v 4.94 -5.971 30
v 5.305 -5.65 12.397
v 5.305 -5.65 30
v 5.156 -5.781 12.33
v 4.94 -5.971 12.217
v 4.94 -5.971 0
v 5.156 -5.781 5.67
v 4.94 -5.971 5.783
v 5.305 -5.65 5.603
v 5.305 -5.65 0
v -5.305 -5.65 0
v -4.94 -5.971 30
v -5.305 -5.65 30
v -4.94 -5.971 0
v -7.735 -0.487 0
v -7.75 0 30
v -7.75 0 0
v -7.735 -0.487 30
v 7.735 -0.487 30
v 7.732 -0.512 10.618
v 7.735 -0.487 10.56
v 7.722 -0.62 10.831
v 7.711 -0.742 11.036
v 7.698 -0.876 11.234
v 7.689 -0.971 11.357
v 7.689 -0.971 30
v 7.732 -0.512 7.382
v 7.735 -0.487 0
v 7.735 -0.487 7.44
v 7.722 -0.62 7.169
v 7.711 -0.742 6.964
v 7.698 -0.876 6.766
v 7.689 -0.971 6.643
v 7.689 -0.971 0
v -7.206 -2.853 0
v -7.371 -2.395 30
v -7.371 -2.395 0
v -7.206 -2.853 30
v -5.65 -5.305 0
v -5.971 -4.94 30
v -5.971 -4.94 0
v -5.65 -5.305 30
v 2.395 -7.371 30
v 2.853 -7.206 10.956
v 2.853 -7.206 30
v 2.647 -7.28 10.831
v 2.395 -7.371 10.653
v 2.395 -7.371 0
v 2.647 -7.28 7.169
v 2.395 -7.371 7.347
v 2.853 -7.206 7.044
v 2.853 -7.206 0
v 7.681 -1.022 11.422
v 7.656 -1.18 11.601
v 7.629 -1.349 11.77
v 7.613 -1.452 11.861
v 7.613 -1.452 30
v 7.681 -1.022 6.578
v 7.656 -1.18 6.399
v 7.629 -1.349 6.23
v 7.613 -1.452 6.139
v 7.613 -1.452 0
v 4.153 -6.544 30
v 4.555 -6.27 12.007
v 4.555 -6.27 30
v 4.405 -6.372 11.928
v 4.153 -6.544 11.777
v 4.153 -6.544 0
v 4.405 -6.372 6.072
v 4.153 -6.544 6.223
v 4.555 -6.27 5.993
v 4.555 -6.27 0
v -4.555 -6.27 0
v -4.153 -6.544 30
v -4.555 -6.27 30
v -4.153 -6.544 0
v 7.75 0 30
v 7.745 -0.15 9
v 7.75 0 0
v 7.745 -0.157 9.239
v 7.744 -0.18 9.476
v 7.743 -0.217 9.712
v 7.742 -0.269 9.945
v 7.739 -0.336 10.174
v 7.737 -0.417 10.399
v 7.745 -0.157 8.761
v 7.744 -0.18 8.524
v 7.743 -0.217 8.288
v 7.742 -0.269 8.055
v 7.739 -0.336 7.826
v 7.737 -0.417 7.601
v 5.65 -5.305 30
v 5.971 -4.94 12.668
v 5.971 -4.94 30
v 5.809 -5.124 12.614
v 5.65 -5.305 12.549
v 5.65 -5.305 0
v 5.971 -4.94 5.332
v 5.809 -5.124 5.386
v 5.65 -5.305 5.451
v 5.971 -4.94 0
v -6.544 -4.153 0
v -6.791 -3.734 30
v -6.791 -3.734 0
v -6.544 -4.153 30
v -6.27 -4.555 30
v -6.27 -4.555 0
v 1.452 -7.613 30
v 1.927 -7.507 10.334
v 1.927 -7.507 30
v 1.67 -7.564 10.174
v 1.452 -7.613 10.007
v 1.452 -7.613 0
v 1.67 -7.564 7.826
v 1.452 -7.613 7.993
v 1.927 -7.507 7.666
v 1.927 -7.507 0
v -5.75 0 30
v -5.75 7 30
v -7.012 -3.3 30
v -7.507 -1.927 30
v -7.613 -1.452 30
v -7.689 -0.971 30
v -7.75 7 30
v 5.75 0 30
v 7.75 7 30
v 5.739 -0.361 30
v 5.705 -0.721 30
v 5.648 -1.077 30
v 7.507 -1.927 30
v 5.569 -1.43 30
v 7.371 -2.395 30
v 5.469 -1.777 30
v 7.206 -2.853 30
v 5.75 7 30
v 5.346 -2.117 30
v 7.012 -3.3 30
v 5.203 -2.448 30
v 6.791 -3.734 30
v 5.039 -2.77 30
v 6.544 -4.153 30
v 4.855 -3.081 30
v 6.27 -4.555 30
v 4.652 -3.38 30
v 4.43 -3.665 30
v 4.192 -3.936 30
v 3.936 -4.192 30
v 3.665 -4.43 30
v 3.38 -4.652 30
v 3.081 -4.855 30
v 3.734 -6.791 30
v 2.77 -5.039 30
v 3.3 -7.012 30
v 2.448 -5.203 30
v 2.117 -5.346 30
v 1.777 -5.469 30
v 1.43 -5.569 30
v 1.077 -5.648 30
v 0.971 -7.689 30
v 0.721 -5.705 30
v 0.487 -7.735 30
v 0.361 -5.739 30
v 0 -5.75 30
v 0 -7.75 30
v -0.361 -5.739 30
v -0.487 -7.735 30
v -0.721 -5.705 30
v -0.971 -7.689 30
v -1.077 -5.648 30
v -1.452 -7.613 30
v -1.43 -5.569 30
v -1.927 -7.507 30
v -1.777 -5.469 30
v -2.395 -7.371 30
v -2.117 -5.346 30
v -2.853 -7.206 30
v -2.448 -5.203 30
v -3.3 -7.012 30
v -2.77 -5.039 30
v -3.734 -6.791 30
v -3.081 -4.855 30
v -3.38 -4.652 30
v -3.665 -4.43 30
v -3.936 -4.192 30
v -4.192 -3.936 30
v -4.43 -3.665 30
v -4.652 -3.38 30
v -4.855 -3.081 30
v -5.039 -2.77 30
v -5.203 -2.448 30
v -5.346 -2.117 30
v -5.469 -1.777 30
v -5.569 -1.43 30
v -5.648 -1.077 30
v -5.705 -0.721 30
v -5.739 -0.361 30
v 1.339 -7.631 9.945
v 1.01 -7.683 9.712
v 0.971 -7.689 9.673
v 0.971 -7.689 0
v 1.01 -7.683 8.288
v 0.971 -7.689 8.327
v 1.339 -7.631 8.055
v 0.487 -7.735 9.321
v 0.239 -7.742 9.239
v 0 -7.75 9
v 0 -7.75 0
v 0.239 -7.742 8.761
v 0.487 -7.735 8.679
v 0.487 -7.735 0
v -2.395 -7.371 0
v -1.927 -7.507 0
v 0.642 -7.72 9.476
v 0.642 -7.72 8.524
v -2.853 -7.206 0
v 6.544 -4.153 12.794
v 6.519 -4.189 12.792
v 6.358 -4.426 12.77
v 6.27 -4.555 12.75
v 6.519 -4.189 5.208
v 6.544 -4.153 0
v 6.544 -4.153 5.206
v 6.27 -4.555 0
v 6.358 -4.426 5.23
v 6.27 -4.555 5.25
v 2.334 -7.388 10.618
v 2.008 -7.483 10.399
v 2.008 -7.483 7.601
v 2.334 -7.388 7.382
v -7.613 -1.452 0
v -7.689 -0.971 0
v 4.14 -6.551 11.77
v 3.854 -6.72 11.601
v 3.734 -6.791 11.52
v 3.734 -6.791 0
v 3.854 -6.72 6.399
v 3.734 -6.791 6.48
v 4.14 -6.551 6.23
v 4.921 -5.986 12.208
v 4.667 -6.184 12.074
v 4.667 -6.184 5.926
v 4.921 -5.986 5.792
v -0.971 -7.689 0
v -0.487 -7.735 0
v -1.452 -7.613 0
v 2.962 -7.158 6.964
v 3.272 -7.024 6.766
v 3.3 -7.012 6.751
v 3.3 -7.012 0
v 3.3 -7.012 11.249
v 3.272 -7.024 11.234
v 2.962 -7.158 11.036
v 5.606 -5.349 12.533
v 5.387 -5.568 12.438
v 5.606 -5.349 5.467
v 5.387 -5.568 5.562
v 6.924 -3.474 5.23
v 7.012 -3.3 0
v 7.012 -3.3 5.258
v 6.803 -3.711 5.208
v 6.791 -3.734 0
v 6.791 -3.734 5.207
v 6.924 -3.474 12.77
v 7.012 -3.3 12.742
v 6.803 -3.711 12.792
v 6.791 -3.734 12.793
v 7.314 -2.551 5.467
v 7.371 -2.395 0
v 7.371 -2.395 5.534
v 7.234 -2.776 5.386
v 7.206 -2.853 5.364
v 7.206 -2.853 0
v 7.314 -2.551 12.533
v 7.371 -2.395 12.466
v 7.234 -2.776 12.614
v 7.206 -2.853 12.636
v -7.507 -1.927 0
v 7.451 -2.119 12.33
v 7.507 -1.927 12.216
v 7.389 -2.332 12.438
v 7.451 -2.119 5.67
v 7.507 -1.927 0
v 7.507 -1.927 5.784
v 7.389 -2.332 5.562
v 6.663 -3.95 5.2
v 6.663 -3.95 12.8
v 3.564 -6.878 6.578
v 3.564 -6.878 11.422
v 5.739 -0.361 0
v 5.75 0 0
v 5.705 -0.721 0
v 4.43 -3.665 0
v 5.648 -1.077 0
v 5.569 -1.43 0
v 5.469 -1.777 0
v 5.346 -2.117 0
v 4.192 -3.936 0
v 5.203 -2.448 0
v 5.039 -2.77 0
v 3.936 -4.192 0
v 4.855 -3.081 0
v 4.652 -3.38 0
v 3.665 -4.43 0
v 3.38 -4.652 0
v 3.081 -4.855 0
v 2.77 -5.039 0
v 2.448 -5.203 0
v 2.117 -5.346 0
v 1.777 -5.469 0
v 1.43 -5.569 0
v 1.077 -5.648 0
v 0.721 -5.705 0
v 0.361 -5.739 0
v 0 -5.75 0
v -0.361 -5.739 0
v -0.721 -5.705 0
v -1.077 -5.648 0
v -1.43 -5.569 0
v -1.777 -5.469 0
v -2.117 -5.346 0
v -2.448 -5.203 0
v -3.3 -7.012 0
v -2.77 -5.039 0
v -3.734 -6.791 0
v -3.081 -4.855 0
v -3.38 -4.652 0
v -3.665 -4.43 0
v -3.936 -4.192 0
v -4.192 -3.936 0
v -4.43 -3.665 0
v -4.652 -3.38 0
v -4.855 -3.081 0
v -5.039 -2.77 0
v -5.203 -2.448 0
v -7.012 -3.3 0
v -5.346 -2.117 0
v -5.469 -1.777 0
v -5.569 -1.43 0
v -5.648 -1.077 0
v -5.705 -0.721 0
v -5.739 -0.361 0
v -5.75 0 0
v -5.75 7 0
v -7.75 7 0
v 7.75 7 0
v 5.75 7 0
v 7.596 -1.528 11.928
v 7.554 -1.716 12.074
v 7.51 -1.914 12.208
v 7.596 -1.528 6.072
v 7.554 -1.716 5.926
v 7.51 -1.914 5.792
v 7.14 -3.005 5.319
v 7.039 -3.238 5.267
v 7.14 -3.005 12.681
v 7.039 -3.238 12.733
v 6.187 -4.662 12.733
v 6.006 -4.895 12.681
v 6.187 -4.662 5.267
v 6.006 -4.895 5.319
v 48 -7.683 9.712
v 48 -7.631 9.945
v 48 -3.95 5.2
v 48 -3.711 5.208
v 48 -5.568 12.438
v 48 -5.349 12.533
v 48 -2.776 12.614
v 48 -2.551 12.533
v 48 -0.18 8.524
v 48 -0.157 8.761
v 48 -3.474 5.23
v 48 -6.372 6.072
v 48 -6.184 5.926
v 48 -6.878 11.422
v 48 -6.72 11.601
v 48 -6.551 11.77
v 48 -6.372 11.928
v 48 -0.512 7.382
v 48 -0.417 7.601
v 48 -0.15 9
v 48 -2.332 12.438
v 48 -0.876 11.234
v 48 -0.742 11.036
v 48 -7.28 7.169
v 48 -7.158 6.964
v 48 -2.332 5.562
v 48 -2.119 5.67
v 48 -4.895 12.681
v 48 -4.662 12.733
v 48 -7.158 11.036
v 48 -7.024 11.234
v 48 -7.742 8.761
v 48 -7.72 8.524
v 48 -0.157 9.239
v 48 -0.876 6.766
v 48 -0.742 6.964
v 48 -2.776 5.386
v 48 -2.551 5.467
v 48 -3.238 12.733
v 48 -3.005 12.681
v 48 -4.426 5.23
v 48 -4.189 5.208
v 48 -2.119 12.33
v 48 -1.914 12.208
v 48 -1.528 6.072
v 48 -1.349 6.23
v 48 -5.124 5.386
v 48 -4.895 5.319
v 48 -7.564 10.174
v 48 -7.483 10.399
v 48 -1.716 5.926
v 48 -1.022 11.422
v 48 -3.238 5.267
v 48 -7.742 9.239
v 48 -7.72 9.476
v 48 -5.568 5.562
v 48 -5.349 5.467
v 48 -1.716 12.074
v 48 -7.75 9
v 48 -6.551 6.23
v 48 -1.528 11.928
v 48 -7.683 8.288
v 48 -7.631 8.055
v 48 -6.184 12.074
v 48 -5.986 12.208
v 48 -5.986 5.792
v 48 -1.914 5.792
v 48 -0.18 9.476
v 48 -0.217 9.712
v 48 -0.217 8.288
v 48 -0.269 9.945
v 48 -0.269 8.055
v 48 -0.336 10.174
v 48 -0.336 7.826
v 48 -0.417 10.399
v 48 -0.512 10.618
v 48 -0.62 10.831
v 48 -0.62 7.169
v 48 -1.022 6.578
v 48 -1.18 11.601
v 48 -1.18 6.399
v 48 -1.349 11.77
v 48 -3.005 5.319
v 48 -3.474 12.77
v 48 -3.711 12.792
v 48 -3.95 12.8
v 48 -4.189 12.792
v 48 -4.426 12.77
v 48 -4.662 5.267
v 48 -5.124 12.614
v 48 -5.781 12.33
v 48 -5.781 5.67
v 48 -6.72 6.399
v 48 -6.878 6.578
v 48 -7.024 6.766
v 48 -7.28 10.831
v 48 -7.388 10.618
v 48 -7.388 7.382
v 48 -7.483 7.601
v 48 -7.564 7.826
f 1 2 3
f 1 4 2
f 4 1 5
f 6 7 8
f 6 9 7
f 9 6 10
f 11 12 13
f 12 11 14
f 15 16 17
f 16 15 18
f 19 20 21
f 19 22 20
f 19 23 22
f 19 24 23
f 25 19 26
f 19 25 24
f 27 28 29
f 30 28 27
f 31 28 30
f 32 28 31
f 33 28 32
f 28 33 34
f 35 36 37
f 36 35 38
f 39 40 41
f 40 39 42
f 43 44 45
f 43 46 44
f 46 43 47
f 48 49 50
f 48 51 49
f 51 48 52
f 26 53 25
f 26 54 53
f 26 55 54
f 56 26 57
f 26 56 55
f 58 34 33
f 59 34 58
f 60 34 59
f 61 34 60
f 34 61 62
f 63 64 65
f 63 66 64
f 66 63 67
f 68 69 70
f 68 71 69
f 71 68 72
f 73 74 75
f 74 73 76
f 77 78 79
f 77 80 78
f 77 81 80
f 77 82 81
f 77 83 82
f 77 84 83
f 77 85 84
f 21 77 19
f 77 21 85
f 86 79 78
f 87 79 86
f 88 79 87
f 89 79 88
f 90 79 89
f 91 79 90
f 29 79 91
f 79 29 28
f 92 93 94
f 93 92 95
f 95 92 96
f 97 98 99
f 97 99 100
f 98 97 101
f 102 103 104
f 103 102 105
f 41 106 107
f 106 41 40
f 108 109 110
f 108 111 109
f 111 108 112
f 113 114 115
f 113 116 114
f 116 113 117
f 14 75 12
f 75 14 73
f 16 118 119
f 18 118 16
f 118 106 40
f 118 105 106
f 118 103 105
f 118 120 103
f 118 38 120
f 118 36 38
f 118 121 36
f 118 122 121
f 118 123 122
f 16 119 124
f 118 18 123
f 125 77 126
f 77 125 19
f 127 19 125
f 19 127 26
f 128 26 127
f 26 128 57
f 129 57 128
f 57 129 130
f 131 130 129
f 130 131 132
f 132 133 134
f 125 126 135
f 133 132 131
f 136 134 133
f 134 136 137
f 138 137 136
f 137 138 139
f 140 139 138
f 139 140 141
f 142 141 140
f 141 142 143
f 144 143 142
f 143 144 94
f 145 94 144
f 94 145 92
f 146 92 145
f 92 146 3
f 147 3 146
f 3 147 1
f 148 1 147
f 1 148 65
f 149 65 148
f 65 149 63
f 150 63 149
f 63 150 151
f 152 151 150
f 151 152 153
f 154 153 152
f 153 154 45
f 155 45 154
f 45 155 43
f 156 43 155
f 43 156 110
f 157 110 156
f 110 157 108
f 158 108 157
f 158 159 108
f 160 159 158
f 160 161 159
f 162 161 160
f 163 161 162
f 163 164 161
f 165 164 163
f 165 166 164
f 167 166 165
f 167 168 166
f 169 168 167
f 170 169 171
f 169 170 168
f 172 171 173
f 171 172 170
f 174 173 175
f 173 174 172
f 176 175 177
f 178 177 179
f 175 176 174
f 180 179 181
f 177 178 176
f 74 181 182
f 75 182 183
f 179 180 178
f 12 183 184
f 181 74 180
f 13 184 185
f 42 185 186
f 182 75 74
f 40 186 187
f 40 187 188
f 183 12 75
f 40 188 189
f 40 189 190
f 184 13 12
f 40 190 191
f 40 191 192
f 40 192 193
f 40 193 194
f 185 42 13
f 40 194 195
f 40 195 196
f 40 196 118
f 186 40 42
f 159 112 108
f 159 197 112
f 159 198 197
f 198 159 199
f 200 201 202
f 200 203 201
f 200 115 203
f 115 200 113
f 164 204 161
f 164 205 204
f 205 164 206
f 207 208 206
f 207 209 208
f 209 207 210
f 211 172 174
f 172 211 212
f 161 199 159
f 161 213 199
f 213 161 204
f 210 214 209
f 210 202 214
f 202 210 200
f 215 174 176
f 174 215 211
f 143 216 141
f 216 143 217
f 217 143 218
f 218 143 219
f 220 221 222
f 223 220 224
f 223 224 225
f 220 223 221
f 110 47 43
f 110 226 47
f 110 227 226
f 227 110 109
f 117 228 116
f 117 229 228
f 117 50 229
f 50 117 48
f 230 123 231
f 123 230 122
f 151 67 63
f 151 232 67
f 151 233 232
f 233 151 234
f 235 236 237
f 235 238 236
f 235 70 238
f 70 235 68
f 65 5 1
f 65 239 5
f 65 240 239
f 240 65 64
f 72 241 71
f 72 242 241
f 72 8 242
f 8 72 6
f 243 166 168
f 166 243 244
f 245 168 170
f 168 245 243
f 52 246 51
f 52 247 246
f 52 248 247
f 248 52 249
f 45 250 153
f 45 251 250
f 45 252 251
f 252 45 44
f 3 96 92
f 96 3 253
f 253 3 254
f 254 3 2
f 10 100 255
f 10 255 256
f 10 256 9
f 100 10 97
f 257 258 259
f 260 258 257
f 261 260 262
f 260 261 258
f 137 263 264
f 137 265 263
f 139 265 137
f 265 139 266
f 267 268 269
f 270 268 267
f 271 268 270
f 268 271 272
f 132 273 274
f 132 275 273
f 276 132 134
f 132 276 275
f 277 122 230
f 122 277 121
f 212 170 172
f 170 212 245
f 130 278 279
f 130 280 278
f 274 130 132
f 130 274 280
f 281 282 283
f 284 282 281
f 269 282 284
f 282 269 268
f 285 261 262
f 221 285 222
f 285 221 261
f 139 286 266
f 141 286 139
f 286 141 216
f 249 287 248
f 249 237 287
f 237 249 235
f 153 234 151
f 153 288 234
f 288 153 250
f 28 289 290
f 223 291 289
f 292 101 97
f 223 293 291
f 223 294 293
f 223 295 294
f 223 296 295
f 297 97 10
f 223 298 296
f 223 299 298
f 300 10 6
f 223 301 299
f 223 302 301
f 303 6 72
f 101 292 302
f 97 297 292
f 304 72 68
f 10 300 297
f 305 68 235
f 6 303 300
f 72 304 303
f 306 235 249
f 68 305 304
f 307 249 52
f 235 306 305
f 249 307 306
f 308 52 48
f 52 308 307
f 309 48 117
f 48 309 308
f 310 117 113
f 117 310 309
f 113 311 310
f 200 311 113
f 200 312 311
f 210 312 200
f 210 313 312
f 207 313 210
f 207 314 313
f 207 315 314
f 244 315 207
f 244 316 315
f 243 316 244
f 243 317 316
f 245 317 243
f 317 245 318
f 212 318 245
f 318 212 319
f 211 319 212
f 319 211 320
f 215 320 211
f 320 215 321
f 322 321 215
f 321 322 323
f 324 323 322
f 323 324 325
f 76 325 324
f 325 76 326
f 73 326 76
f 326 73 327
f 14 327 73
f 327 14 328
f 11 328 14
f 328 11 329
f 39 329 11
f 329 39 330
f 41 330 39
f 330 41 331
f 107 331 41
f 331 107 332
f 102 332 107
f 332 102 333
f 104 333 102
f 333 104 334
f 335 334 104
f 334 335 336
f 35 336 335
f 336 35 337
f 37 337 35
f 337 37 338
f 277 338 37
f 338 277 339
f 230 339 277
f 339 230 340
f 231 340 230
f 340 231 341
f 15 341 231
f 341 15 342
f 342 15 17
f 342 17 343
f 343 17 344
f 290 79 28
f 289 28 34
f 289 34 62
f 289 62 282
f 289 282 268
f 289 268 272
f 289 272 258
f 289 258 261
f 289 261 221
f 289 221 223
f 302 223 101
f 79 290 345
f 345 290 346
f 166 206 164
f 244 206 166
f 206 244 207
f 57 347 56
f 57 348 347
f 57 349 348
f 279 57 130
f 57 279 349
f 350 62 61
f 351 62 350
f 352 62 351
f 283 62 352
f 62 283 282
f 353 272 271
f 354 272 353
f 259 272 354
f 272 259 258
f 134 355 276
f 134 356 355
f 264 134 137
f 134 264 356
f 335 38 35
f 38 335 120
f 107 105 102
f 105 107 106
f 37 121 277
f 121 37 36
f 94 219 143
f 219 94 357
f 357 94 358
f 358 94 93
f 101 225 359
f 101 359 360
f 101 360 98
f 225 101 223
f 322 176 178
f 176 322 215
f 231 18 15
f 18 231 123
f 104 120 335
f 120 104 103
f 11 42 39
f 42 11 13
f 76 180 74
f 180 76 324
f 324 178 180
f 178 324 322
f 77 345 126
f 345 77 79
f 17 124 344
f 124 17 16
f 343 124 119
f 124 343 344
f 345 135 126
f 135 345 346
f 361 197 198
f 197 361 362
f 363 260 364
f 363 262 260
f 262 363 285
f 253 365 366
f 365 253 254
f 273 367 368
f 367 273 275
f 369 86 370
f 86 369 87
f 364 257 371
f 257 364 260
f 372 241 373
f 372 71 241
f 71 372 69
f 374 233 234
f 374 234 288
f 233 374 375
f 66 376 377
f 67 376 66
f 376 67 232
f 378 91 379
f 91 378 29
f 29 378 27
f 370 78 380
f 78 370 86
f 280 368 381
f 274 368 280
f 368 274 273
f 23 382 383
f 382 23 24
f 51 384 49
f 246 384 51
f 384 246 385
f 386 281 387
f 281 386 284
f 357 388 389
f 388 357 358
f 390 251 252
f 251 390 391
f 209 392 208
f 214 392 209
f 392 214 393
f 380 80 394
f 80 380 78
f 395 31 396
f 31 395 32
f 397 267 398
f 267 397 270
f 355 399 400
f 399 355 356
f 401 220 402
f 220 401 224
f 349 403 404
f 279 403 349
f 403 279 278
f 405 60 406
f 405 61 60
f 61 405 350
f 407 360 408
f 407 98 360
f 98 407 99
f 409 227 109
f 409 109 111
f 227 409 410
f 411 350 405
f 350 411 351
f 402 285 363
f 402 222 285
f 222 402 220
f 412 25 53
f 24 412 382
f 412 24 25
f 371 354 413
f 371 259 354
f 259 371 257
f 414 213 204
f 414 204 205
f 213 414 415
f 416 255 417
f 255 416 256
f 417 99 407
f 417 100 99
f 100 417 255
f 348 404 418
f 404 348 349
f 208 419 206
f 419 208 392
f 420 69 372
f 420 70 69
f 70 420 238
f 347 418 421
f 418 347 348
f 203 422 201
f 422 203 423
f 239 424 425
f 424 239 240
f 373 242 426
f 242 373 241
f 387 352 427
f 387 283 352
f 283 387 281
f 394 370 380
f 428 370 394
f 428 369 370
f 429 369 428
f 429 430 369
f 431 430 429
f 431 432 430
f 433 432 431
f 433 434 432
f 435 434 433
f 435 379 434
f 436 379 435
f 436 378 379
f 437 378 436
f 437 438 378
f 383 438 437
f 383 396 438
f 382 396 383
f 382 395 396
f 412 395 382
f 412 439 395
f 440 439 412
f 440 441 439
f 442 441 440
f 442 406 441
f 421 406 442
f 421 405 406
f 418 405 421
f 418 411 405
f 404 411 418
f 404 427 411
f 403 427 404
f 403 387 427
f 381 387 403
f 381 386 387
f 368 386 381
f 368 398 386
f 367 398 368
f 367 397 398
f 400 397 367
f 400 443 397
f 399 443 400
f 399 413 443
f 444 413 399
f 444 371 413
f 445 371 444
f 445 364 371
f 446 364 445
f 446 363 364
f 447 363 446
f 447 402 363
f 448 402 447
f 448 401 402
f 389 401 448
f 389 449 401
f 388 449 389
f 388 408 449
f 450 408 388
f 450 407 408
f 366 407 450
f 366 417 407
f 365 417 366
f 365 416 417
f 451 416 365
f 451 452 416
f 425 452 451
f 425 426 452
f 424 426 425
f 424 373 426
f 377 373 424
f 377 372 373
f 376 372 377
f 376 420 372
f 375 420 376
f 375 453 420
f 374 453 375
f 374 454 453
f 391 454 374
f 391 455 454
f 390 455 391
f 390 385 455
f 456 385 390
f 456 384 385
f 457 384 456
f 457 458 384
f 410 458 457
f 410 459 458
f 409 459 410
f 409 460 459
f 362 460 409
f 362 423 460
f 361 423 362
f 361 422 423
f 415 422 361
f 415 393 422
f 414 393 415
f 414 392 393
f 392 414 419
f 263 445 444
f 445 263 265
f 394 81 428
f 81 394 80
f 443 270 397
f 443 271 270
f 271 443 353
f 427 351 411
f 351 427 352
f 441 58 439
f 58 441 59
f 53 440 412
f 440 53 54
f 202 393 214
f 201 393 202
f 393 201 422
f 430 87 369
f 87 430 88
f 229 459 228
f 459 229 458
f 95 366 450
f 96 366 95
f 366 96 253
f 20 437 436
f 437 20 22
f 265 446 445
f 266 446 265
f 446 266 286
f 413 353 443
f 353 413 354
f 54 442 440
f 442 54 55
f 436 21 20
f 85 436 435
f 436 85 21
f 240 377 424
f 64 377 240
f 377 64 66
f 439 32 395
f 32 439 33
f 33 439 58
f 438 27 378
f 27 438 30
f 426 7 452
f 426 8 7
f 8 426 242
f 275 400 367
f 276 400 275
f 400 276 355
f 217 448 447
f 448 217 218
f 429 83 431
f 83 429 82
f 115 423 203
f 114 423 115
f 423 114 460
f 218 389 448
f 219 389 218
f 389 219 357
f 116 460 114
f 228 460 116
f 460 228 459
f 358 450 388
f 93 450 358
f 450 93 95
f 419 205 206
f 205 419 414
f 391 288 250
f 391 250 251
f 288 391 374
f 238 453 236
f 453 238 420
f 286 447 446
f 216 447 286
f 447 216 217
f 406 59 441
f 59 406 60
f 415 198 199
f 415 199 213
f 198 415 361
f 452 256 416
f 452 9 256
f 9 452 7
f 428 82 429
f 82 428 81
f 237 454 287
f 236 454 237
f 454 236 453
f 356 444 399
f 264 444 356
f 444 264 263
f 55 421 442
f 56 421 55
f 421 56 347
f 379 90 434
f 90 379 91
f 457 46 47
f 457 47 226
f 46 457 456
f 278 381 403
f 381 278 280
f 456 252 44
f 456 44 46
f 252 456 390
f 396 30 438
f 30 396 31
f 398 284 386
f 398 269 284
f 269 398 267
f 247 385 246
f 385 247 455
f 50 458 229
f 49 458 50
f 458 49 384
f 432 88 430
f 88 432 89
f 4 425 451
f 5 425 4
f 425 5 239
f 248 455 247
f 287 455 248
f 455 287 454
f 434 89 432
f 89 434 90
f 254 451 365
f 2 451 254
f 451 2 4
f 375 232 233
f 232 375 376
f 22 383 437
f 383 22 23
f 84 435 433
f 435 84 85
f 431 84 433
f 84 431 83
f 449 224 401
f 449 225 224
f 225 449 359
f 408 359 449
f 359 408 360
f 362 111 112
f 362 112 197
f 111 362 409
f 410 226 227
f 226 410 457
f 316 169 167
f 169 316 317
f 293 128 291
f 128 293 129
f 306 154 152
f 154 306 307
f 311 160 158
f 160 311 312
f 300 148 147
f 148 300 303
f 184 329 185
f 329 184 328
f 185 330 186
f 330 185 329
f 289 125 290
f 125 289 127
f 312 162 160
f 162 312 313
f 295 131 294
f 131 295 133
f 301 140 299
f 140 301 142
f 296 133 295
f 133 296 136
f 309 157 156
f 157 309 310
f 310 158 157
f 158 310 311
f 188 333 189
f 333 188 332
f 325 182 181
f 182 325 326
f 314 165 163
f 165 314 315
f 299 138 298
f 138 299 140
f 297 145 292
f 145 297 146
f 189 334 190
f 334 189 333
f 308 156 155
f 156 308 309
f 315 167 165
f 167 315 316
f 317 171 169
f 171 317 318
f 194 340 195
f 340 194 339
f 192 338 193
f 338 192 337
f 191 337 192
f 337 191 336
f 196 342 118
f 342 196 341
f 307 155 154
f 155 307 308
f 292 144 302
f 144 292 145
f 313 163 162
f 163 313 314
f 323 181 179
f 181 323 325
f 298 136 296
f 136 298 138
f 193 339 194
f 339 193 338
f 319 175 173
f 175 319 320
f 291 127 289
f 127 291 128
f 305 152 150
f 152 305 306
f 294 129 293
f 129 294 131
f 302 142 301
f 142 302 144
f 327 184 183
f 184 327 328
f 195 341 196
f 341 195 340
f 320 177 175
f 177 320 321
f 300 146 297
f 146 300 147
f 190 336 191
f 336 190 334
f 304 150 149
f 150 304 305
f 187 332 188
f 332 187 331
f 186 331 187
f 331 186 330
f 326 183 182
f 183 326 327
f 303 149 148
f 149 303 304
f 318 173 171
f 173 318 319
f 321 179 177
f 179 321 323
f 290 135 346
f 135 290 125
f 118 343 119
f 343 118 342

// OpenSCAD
r_holder = 3.8;
width = 11.5;
height = 7;
length = 30;

gap = 48;
l0 = 9;
th = 2;

$fn = 100;
difference(){
    union(){
        cylinder(length, width/2 + th, width/2 + th);
        translate([-width/2 - th, 0, 0]) cube([width + 2*th, height, length]);
        translate([0, -width/2 - th + r_holder, l0]) rotate([0, 90, 0]) cylinder(gap, r_holder, r_holder);
    }
    cylinder(length, width/2, width/2);
    translate([-width/2, 0, 0]) cube([width, max(height, width/2 + th) , length]);
}
